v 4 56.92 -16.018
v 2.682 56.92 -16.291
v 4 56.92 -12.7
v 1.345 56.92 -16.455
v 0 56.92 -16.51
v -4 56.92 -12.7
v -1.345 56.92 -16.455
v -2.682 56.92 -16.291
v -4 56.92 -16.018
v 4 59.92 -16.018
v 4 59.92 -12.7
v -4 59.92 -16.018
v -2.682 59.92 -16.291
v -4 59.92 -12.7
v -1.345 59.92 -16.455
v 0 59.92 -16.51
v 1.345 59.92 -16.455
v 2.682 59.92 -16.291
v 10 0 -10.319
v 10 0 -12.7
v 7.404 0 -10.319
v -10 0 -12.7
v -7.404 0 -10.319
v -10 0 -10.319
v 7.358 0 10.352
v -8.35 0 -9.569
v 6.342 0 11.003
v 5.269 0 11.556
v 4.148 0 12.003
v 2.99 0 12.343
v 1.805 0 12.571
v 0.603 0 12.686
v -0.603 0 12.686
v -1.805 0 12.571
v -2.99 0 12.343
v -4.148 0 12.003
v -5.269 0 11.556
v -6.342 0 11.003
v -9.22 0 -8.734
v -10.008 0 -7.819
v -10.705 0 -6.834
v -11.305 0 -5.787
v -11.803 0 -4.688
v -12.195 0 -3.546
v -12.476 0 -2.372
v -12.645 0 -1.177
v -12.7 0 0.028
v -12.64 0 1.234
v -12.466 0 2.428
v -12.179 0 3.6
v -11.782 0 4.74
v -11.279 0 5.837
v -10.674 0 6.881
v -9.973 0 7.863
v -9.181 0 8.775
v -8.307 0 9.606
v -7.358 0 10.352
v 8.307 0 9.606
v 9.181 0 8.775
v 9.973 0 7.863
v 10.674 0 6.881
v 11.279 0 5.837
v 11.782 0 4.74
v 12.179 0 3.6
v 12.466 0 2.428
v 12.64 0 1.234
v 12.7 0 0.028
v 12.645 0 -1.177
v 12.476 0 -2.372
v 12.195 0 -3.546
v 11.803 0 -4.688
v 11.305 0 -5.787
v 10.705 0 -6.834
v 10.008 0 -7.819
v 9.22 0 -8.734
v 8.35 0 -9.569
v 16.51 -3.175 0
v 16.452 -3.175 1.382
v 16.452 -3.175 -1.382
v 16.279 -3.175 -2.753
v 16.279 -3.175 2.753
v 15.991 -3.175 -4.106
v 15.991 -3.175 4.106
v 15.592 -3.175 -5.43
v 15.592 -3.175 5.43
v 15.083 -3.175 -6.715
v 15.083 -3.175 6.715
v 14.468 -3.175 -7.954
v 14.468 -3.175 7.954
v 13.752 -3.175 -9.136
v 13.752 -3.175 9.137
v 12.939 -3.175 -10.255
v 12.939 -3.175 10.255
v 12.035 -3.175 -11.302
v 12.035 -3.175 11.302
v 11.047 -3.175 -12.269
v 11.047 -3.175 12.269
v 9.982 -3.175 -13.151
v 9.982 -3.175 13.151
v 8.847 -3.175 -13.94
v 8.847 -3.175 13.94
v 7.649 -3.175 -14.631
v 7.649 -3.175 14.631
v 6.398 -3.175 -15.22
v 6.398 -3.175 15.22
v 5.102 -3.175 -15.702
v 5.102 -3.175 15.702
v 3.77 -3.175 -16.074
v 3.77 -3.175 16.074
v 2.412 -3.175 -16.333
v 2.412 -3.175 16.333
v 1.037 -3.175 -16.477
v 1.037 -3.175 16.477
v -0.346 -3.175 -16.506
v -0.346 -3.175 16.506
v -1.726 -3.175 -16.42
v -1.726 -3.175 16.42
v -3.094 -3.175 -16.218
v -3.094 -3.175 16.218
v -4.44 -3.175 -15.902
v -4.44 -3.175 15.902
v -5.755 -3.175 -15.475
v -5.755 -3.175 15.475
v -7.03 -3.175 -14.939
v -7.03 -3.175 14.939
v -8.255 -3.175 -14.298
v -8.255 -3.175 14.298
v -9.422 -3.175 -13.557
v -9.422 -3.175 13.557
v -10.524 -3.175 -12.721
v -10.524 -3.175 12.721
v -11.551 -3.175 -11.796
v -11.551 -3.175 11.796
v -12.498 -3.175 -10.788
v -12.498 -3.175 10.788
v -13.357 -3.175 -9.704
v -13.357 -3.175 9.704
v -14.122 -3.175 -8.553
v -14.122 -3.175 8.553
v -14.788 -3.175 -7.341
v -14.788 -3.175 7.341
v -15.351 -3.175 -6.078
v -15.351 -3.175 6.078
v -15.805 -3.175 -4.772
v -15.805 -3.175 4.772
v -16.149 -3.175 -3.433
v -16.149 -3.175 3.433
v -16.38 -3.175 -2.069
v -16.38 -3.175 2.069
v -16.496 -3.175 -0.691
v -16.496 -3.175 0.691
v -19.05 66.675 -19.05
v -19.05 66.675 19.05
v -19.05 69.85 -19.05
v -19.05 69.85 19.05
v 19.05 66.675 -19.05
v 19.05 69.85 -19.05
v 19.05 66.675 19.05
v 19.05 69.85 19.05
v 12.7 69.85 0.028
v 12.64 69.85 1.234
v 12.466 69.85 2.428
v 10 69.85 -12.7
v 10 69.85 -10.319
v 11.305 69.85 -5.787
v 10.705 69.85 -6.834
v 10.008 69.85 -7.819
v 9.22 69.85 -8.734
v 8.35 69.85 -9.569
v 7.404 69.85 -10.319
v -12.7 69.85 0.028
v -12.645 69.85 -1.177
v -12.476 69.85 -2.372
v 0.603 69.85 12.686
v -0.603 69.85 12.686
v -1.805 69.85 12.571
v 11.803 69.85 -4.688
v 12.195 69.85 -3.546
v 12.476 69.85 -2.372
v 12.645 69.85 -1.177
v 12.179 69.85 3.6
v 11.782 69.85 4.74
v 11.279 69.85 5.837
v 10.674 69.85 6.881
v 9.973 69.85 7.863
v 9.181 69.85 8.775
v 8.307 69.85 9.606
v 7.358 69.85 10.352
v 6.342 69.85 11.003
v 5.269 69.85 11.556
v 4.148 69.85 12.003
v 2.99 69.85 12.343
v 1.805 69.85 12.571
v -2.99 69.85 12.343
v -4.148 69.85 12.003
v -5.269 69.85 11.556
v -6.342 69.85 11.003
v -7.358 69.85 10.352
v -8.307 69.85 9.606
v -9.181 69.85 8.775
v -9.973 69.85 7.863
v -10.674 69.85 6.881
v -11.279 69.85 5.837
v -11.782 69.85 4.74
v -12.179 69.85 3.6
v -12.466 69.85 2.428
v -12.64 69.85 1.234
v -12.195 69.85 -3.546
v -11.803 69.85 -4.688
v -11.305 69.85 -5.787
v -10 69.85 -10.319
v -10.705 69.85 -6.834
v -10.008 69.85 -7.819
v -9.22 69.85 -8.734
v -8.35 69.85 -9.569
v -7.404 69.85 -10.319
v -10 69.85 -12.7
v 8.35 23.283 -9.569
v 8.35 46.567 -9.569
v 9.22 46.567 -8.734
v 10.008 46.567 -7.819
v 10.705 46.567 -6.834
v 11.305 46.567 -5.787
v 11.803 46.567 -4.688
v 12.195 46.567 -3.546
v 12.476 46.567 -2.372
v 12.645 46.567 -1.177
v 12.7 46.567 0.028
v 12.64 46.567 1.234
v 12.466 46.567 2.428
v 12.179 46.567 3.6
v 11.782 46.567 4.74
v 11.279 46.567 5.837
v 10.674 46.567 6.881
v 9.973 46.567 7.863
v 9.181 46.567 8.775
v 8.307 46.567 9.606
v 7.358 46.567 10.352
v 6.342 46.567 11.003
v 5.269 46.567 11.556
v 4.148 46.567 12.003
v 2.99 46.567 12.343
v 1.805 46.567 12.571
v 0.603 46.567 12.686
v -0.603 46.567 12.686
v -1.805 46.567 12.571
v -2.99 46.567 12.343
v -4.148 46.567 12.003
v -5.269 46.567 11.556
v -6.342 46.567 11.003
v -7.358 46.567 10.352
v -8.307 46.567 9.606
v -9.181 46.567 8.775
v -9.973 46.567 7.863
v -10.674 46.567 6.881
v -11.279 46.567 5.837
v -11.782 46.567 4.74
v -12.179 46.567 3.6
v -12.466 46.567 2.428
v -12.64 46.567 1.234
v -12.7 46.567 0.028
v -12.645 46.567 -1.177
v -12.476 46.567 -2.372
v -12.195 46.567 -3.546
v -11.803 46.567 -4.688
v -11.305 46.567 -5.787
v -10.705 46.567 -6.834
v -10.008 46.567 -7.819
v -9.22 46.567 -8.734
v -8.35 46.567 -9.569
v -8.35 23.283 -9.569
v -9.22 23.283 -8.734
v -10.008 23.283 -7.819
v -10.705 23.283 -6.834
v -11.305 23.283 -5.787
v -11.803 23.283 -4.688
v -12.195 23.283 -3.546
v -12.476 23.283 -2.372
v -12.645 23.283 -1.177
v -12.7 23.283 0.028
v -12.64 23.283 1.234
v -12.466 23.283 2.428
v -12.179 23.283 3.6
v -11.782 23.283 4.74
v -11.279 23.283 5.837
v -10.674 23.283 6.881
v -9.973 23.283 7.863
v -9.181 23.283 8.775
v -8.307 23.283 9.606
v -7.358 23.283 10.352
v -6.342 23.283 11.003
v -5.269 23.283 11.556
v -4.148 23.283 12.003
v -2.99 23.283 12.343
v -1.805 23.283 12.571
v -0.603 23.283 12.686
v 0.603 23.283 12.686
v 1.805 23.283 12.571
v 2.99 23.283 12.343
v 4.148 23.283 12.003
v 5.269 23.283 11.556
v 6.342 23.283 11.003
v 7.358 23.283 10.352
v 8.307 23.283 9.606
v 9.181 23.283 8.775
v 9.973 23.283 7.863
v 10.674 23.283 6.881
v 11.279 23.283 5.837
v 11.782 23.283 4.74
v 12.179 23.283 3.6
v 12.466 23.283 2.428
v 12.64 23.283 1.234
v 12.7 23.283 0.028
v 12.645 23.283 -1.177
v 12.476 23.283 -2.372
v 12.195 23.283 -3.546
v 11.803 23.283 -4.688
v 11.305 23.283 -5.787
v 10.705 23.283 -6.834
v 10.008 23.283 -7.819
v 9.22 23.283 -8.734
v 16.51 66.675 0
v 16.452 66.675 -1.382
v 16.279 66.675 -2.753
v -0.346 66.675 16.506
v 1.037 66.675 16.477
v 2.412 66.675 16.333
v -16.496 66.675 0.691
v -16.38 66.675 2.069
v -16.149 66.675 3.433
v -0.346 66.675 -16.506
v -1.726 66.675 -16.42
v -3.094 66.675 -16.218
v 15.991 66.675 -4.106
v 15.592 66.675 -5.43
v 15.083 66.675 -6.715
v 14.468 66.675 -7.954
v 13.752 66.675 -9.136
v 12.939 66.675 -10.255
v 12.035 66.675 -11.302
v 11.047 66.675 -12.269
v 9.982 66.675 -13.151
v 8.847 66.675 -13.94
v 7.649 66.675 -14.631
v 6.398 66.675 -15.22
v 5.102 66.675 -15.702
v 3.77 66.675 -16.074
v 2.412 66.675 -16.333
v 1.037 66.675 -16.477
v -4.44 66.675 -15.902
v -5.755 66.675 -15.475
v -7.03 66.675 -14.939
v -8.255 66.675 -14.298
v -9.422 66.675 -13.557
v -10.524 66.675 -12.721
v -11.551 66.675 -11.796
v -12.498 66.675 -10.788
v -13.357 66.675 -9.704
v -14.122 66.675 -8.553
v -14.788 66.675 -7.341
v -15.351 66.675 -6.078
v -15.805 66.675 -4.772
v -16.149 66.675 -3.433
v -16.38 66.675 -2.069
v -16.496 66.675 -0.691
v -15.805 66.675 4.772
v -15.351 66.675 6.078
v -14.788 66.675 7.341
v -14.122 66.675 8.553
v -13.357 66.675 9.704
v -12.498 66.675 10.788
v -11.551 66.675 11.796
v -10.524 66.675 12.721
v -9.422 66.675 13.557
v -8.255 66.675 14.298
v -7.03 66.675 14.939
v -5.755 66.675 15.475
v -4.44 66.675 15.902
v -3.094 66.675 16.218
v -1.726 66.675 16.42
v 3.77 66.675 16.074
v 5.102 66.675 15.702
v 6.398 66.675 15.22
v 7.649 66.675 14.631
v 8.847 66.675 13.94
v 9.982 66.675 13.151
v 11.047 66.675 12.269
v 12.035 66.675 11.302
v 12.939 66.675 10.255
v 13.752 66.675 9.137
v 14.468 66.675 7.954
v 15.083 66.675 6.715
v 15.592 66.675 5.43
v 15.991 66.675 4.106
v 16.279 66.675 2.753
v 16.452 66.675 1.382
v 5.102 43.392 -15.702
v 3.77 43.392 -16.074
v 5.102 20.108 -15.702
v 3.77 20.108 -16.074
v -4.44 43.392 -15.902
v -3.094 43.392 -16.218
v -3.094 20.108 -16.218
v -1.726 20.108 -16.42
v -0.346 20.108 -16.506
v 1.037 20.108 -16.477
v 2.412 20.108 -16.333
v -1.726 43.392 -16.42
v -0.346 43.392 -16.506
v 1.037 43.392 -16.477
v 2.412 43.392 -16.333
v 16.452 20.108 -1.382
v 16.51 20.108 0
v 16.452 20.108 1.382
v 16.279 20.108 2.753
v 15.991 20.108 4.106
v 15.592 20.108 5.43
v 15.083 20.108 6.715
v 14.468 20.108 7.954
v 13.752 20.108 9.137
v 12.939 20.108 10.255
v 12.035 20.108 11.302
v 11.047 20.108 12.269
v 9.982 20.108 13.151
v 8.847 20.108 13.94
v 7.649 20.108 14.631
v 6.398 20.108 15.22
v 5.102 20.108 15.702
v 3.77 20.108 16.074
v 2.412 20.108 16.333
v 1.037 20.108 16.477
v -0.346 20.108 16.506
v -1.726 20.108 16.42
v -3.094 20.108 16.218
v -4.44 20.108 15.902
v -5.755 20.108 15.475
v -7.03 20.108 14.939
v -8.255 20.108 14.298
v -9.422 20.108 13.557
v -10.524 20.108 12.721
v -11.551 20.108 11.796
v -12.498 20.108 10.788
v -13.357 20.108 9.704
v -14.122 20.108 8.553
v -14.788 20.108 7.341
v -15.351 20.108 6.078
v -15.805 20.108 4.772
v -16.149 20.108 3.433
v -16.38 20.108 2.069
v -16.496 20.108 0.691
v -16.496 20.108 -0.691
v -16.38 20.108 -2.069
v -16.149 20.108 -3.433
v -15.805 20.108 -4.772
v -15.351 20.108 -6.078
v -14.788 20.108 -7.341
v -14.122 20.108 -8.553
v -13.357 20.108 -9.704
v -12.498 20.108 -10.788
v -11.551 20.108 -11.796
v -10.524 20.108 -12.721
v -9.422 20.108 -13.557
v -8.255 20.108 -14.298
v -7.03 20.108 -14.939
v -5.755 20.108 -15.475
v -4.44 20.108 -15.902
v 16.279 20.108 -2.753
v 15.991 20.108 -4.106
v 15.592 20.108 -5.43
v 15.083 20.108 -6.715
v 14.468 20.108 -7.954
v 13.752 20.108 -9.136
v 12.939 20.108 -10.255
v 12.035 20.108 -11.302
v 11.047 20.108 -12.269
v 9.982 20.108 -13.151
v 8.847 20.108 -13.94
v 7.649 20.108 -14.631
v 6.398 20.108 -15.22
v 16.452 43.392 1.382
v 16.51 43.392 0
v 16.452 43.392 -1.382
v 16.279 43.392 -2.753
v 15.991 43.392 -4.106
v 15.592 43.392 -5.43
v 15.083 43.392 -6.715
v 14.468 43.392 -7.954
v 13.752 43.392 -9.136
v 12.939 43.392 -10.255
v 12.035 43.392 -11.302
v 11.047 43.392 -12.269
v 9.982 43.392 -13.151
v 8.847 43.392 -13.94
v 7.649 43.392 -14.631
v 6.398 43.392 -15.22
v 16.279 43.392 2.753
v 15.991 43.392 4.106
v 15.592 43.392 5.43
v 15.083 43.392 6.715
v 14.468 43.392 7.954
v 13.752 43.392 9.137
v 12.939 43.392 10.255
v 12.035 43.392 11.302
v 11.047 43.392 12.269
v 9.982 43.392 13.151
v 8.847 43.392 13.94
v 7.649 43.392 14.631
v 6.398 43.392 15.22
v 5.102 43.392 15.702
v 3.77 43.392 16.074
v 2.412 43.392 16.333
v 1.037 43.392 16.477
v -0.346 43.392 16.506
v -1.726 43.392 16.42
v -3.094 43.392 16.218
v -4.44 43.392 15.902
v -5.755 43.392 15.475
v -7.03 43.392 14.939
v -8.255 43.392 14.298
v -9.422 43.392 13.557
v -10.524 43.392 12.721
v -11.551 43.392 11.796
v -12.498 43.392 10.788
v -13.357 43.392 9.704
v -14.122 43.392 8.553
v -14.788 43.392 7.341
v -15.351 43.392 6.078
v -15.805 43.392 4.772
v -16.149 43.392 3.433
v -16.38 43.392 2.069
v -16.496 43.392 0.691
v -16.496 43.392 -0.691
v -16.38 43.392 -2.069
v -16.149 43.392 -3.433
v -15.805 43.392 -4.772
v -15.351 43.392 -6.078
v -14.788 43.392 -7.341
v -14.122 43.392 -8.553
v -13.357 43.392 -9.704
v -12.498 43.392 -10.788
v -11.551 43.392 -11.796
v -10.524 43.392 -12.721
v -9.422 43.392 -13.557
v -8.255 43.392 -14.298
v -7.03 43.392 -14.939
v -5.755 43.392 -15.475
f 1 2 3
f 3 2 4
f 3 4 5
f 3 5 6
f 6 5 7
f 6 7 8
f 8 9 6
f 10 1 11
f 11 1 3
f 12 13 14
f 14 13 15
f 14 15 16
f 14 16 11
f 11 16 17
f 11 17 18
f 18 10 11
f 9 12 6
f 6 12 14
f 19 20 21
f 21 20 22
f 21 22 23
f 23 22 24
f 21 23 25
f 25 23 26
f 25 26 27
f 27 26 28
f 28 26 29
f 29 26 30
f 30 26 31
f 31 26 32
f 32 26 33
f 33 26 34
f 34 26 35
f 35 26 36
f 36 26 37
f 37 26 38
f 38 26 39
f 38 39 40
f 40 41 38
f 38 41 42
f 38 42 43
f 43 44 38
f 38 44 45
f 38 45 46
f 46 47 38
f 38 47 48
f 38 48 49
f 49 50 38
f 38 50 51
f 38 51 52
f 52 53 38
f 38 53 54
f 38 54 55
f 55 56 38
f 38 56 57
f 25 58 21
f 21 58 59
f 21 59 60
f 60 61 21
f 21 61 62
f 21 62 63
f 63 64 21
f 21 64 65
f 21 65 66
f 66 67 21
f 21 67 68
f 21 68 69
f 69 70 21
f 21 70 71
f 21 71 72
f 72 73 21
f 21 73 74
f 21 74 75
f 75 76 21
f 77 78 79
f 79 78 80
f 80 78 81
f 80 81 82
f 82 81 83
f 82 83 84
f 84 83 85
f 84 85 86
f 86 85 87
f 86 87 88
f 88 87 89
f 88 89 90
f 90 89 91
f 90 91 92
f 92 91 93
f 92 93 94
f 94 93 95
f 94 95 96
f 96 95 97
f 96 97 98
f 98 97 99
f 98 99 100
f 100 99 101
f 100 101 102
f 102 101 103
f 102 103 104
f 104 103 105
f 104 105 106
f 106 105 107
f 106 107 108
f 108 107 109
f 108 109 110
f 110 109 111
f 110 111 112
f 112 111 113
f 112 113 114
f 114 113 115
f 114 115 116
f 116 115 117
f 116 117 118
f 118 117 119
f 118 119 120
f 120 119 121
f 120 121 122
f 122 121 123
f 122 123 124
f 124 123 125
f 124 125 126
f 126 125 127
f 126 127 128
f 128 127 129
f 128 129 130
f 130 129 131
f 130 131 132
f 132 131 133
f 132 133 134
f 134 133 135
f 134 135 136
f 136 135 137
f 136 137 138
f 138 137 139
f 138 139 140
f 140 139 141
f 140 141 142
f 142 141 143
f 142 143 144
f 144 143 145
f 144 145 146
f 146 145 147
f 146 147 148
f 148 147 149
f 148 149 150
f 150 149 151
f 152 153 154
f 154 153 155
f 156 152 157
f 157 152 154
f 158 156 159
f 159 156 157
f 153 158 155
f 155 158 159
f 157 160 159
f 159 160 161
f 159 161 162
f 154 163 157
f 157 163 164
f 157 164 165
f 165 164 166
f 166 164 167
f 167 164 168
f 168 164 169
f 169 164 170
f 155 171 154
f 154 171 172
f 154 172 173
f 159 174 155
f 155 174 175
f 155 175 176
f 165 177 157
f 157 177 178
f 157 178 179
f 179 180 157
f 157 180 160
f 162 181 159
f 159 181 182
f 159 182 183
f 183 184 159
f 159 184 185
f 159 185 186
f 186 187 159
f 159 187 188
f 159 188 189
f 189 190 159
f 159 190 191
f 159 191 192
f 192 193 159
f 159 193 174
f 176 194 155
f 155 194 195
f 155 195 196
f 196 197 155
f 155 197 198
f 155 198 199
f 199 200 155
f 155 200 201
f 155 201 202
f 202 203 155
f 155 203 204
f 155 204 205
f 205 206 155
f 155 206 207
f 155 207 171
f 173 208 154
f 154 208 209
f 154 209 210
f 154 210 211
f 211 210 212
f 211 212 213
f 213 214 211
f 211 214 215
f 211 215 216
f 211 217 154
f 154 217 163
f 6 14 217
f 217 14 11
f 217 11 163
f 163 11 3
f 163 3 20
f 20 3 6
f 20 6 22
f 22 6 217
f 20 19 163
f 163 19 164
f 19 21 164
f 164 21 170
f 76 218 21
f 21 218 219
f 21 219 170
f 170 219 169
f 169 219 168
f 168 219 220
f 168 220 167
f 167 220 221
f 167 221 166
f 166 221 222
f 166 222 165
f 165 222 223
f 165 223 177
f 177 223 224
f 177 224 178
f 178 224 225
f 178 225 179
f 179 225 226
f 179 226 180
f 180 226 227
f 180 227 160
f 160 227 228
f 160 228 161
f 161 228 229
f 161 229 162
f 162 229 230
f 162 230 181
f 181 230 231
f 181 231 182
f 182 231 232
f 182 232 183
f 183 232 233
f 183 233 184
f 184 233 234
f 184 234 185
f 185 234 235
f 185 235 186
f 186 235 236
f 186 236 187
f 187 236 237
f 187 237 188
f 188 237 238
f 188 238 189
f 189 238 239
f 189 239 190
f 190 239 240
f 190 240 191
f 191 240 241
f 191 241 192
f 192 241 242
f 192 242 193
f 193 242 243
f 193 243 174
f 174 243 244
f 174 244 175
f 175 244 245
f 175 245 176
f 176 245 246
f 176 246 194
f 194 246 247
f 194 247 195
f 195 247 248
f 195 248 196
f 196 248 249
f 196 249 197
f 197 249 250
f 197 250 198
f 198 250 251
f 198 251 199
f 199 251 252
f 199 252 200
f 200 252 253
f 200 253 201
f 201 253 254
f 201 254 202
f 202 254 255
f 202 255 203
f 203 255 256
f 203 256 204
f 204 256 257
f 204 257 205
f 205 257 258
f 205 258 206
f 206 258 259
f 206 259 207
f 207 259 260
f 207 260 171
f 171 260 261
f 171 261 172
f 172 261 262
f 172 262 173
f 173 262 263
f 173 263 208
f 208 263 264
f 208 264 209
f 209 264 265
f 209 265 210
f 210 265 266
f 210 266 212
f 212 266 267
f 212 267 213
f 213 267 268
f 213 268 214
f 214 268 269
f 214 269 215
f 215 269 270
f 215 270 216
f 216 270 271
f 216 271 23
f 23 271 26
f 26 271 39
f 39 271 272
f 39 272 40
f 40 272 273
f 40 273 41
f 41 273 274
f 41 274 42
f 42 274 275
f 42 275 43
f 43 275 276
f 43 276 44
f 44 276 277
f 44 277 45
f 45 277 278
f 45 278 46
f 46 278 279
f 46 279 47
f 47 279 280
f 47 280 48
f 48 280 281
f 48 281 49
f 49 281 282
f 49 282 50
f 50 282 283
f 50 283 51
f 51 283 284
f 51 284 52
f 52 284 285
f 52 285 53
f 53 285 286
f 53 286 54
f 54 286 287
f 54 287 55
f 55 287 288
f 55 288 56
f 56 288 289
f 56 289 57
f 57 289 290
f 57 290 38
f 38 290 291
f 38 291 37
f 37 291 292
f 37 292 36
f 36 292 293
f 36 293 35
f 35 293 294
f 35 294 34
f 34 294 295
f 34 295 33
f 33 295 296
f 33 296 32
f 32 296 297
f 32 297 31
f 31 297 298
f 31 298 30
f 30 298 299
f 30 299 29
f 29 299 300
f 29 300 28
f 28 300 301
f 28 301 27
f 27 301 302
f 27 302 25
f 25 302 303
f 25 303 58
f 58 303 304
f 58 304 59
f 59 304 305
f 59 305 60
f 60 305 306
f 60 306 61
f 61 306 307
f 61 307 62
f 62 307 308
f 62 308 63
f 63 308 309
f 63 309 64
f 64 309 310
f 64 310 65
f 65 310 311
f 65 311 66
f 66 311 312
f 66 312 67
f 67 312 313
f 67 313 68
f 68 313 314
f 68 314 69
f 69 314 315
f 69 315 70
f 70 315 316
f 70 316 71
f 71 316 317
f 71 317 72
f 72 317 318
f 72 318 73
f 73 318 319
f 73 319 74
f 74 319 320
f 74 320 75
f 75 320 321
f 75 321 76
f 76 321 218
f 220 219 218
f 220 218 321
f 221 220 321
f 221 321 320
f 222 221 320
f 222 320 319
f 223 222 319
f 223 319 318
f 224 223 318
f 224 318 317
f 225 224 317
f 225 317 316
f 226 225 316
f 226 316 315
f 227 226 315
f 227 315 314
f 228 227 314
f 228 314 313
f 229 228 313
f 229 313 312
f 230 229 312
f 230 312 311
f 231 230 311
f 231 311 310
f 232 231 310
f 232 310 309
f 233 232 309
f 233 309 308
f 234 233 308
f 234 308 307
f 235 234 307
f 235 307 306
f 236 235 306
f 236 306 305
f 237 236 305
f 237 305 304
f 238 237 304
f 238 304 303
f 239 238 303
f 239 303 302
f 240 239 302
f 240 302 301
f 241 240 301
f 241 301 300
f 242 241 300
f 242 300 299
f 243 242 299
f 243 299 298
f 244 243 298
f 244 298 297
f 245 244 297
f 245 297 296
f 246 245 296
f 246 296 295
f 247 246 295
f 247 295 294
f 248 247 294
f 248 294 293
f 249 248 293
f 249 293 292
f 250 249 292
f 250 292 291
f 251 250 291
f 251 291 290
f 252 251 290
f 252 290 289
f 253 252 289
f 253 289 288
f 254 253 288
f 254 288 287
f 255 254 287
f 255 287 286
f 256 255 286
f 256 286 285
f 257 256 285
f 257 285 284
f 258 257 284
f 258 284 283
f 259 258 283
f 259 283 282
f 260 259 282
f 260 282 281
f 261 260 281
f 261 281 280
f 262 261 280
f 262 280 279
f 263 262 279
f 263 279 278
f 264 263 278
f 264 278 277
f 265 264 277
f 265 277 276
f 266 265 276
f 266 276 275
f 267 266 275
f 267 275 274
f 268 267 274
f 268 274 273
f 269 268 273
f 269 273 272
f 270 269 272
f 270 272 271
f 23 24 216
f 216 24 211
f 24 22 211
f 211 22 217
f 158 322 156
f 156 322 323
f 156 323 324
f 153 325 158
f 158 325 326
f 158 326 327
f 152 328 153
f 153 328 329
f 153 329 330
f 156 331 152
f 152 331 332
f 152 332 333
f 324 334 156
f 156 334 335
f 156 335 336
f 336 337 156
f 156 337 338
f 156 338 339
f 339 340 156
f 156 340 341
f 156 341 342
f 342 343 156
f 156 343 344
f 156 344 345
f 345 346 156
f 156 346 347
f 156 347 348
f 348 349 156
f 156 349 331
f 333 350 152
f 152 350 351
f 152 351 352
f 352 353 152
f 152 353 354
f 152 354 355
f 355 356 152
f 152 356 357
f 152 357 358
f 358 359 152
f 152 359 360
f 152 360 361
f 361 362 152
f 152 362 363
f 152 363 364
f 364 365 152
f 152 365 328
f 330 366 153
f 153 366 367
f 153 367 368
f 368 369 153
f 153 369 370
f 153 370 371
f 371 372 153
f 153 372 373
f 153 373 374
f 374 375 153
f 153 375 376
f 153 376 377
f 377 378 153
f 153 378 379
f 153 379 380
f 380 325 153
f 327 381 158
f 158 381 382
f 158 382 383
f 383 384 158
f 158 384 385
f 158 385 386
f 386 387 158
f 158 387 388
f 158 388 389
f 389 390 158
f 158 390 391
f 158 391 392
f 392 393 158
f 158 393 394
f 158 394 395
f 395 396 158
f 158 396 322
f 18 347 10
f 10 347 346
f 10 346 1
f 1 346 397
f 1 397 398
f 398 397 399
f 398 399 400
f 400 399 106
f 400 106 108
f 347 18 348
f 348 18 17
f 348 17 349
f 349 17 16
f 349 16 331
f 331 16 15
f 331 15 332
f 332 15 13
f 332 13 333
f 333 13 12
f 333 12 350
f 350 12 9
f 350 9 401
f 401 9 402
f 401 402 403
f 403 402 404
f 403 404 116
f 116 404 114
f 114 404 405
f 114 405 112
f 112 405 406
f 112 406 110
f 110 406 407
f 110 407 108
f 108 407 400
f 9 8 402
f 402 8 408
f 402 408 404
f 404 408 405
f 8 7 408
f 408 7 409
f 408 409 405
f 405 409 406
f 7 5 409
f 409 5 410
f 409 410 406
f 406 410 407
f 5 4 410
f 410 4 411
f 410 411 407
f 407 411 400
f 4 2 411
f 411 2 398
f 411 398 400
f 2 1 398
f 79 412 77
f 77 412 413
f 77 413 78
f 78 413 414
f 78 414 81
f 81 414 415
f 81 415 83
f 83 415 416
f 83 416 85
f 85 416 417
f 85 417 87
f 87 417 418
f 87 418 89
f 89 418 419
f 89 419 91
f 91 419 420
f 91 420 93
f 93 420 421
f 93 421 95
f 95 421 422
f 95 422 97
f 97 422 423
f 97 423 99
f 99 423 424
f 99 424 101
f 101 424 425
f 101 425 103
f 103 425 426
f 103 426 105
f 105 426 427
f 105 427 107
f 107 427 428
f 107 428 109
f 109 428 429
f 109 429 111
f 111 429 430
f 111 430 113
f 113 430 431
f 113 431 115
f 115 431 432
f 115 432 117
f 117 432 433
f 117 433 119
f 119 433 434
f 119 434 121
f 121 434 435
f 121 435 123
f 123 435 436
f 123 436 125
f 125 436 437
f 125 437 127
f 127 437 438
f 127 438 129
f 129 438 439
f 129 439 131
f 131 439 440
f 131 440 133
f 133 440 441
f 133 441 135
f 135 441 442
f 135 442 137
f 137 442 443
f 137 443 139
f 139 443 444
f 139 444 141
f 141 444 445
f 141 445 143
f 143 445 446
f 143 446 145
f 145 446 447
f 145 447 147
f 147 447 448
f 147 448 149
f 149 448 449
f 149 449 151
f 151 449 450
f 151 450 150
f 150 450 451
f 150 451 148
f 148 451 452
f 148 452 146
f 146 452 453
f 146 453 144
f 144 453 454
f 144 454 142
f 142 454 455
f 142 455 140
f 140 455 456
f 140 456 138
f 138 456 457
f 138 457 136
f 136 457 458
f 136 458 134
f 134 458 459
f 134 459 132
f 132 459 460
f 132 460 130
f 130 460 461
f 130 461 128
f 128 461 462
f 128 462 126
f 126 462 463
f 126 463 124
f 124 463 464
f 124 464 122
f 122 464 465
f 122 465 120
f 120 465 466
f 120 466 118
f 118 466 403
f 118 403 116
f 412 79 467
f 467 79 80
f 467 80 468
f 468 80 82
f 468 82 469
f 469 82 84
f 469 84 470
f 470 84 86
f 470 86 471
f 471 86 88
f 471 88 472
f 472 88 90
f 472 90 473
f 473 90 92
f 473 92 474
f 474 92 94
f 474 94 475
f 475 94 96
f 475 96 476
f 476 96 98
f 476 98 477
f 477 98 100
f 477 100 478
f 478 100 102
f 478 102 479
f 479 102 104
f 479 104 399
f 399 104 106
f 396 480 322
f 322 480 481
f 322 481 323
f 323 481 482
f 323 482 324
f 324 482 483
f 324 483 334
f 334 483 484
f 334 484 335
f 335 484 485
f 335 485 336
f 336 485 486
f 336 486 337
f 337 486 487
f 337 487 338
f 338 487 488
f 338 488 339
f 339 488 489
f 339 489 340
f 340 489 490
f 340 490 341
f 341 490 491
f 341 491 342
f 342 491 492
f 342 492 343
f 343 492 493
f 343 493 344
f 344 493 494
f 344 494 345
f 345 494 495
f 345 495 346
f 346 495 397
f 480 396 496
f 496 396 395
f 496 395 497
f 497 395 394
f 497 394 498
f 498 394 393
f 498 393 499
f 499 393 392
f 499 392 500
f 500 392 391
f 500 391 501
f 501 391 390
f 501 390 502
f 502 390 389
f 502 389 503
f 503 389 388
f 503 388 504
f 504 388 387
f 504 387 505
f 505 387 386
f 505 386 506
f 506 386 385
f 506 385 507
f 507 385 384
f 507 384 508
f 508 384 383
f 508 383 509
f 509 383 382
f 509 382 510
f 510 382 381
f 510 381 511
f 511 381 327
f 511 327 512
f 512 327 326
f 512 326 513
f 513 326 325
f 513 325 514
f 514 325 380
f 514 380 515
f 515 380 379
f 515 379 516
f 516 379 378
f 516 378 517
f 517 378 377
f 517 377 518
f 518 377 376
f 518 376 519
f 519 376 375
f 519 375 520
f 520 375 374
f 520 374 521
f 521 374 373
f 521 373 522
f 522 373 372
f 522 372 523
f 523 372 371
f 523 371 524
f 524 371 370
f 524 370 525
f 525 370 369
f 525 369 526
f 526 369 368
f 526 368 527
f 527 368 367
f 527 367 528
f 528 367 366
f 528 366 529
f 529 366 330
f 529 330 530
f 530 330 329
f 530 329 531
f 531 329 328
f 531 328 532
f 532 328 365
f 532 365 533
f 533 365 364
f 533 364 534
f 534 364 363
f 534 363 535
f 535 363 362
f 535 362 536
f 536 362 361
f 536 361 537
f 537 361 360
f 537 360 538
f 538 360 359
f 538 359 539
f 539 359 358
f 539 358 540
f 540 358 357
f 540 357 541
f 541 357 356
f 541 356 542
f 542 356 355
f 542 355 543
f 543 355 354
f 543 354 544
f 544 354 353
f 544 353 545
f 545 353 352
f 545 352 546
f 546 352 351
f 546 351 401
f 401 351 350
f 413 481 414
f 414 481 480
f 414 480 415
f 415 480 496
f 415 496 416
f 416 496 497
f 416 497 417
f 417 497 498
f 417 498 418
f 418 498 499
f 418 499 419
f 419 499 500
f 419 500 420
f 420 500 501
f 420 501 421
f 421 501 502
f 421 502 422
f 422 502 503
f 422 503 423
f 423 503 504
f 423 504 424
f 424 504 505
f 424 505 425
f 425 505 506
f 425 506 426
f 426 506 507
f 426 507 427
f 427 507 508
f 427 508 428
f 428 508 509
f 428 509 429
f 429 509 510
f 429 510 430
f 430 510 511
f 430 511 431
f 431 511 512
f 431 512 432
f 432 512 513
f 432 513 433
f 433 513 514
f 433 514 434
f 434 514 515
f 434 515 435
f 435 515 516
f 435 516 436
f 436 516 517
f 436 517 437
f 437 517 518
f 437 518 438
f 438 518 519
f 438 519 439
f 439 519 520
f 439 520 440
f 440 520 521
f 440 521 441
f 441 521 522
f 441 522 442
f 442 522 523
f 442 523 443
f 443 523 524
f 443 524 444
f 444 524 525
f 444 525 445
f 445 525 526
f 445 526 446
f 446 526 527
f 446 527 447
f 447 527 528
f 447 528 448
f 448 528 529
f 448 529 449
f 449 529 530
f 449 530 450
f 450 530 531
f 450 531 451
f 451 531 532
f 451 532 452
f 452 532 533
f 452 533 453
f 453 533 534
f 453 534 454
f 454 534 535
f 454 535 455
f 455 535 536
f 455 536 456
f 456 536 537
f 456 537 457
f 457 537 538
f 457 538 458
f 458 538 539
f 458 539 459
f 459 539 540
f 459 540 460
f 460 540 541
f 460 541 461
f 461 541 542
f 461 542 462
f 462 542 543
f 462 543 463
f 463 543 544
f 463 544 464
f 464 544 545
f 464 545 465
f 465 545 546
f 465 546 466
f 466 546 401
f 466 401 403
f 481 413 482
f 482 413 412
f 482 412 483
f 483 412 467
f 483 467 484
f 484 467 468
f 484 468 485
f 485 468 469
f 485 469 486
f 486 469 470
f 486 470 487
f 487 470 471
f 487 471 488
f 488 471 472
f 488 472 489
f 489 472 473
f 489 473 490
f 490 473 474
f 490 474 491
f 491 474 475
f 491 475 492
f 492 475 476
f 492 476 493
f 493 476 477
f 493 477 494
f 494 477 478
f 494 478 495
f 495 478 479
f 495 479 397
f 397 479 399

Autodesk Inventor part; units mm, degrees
ref_plane "YZ Plane" through (0, 0, 0) normal (1, 0, 0) x (0, 1, 0)
ref_plane "XZ Plane" through (0, 0, 0) normal (0, 1, 0) x (-1, 0, 0)
ref_plane "XY Plane" through (0, 0, 0) normal (0, 0, 1) x (1, 0, 0)
sketch "Sketch1" plane through (0, 0, 0) normal (0, 1, 0) x (-1, 0, 0)
  line L0 (31.75, -31.75) -> (-31.75, -31.75)
  line L1 (-31.75, -31.75) -> (-31.75, 31.75)
  line L2 (-31.75, 31.75) -> (31.75, 31.75)
  line L3 (31.75, 31.75) -> (31.75, -31.75)
  point P0 (0, 0)
  point P1 (-31.75, 0)
  point P2 (0, -31.75)
  dimension "d0" = 63.5
  dimension "d1" = 63.5
extrude "Extrusion1" add sketch "Sketch1" along normal blind 69.85
sketch "Sketch2" plane through (0, 69.85, 0) normal (0, 1, 0) x (1, 0, 0)
  circle A0 centre (0, 0) radius 12.7
  line L0 (-10, 12.7) -> (10, 12.7)
  line L1 (10, 12.7) -> (10, 10.3187)
  line L2 (10, 10.3187) -> (-10, 10.3187)
  line L3 (-10, 10.3187) -> (-10, 12.7)
  point P0 (-12.7, 0)
  point P1 (12.7, 0)
  point P2 (0, 12.7)
  point P3 (-7.4036, 10.3187)
  point P4 (0, 7.5)
  point P5 (7.4036, 10.3187)
  dimension "d4" = 25.4
  dimension "d7" = 20
  dimension "d8" = 2.3813
extrude "Extrusion2" cut sketch "Sketch2" against normal through all
sketch "Sketch4" plane through (0, 69.85, 0) normal (0, 1, 0) x (1, 0, 0)
  circle A0 centre (0, 0) radius 16.51
  line L0 (-23.2494, 25.4) -> (-10.5494, 25.4)
  line L1 (-10.5494, 25.4) -> (-10.5494, 12.7)
  line L2 (-10.5494, 12.7) -> (-23.2494, 12.7)
  line L3 (-23.2494, 12.7) -> (-23.2494, 25.4)
  line L4 (-31.75, 31.75) -> (-31.75, -31.75) projected
  line L5 (-31.75, 0) -> (31.75, 0)
  line L6 (10.5494, 25.4) -> (23.2494, 25.4)
  line L7 (23.2494, 25.4) -> (23.2494, 12.7)
  line L8 (23.2494, 12.7) -> (10.5494, 12.7)
  line L9 (10.5494, 12.7) -> (10.5494, 25.4)
  line L10 (10.5494, -12.7) -> (23.2494, -12.7)
  line L11 (23.2494, -12.7) -> (23.2494, -25.4)
  line L12 (23.2494, -25.4) -> (10.5494, -25.4)
  line L13 (10.5494, -25.4) -> (10.5494, -12.7)
  line L14 (-23.2494, -12.7) -> (-10.5494, -12.7)
  line L15 (-10.5494, -12.7) -> (-10.5494, -25.4)
  line L16 (-10.5494, -25.4) -> (-23.2494, -25.4)
  line L17 (-23.2494, -25.4) -> (-23.2494, -12.7)
  line L18 (-23.2494, 25.4) -> (23.2494, 25.4)
  line L19 (23.2494, 25.4) -> (23.2494, -25.4)
  line L20 (23.2494, -25.4) -> (-23.2494, -25.4)
  line L21 (-23.2494, -25.4) -> (-23.2494, 25.4)
  line L22 (31.75, -31.75) -> (31.75, 31.75) projected
  line L23 (-31.75, 31.75) -> (31.75, 31.75)
  line L24 (31.75, 31.75) -> (31.75, -31.75)
  line L25 (31.75, -31.75) -> (-31.75, -31.75)
  line L26 (-31.75, -31.75) -> (-31.75, 31.75)
  dimension "d10" = 33.02
  dimension "d11" = 12.7
  dimension "d12" = 12.7
  dimension "d13" = 12.7
  dimension "d14" = 12.7
  dimension "d15" = 12.7
  dimension "d16" = 12.7
  dimension "d17" = 12.7
  dimension "d18" = 12.7
  dimension "d19" = 12.7
  dimension "d20" = 12.7
  dimension "d21" = 12.7
  dimension "d22" = 12.7
sketch "Sketch5" plane through (0, 69.85, 0) normal (0, 1, 0) x (1, 0, 0)
  point P0 (0, 0)
extrude "Extrusion3" cut sketch "Sketch4" against normal blind 50.8 contours L19 L7 L6 L18 L0 L3 L21 L5 L4 L23 L22 | L5 L22 L25 L4 L21 L17 L16 L20 L12 L11 L19
sketch "Sketch6" plane through (0, 69.85, 0) normal (0, 1, 0) x (1, 0, 0)
  point P0 (0, 0)
sketch "Sketch7" plane through (0, 0, 0) normal (0, -1, 0) x (1, 0, 0)
  circle A0 centre (0, 0) radius 16.51
  line L0 (-23.2494, 25.4) -> (23.2494, 25.4) projected
  line L1 (23.2494, 25.4) -> (23.2494, -25.4) projected
  line L2 (-23.2494, 25.4) -> (23.2494, 25.4)
  line L3 (23.2494, 25.4) -> (23.2494, -25.4)
  line L4 (23.2494, -25.4) -> (-23.2494, -25.4)
  line L5 (-23.2494, -25.4) -> (-23.2494, 25.4)
  dimension "d25" = 33.02
extrude "Extrusion4" cut sketch "Sketch7" against normal blind 66.675
sketch "Sketch9" plane through (0, 69.85, 0) normal (0, 1, 0) x (1, 0, 0)
  line L0 (-19.05, 19.05) -> (19.05, 19.05)
  line L1 (19.05, 19.05) -> (19.05, -19.05)
  line L2 (19.05, -19.05) -> (-19.05, -19.05)
  line L3 (-19.05, -19.05) -> (-19.05, 19.05)
  line L4 (23.2494, -25.4) -> (23.2494, 25.4) projected
  line L5 (-23.2494, 25.4) -> (23.2494, 25.4)
  line L6 (23.2494, 25.4) -> (23.2494, -25.4)
  line L7 (23.2494, -25.4) -> (-23.2494, -25.4)
  line L8 (-23.2494, -25.4) -> (-23.2494, 25.4)
  line L9 (31.75, -31.75) -> (-31.75, -31.75) projected
  line L10 (-31.75, -31.75) -> (-31.75, 31.75) projected
  line L11 (31.75, -31.75) -> (-31.75, -31.75)
  line L12 (-31.75, -31.75) -> (-31.75, 31.75)
  line L13 (-31.75, 31.75) -> (31.75, 31.75)
  line L14 (31.75, 31.75) -> (31.75, -31.75)
  point P0 (0, 0)
  point P1 (0, 19.05)
  point P2 (19.05, 0)
  point P3 (23.2494, 25.4)
  dimension "d42" = 38.1
  dimension "d43" = 38.1
extrude "Extrusion6" cut sketch "Sketch9" against normal through all contours L7 L8 L5 L4 | L9 L10 L13 L14
sketch "Sketch21" plane through (0, 0, 0) normal (0, -1, 0) x (1, 0, 0)
  arc A0 (7.4036, -10.3187) -> (-7.4036, -10.3187) centre (0, 0) ccw projected
  circle A1 centre (0, 0) radius 16.51
extrude "Extrusion15" add sketch "Sketch21" along normal blind 3.175
sketch "Sketch22" plane through (-10, 69.85, -12.7) normal (0, 0, 1) x (1, 0, 0)
  line L0 (20, -69.85) -> (0, -69.85) projected
  line L1 (6, -12.93) -> (14, -12.93)
  line L2 (14, -12.93) -> (14, -9.93)
  line L3 (14, -9.93) -> (6, -9.93)
  line L4 (6, -9.93) -> (6, -12.93)
  line L5 (29.05, 0) -> (-9.05, 0) projected
  point P0 (10, -69.85)
  point P1 (10, -11.43)
  point P2 (14, -11.43)
  point P3 (10, -9.93)
  dimension "d87" = 58.42
  dimension "d88" = 8
  dimension "d89" = 3
  dimension "d92" = 11.43
extrude "Extrusion16" cut sketch "Sketch22" against normal blind 6.35
properties part number "WaterCollector_3DPrint"
